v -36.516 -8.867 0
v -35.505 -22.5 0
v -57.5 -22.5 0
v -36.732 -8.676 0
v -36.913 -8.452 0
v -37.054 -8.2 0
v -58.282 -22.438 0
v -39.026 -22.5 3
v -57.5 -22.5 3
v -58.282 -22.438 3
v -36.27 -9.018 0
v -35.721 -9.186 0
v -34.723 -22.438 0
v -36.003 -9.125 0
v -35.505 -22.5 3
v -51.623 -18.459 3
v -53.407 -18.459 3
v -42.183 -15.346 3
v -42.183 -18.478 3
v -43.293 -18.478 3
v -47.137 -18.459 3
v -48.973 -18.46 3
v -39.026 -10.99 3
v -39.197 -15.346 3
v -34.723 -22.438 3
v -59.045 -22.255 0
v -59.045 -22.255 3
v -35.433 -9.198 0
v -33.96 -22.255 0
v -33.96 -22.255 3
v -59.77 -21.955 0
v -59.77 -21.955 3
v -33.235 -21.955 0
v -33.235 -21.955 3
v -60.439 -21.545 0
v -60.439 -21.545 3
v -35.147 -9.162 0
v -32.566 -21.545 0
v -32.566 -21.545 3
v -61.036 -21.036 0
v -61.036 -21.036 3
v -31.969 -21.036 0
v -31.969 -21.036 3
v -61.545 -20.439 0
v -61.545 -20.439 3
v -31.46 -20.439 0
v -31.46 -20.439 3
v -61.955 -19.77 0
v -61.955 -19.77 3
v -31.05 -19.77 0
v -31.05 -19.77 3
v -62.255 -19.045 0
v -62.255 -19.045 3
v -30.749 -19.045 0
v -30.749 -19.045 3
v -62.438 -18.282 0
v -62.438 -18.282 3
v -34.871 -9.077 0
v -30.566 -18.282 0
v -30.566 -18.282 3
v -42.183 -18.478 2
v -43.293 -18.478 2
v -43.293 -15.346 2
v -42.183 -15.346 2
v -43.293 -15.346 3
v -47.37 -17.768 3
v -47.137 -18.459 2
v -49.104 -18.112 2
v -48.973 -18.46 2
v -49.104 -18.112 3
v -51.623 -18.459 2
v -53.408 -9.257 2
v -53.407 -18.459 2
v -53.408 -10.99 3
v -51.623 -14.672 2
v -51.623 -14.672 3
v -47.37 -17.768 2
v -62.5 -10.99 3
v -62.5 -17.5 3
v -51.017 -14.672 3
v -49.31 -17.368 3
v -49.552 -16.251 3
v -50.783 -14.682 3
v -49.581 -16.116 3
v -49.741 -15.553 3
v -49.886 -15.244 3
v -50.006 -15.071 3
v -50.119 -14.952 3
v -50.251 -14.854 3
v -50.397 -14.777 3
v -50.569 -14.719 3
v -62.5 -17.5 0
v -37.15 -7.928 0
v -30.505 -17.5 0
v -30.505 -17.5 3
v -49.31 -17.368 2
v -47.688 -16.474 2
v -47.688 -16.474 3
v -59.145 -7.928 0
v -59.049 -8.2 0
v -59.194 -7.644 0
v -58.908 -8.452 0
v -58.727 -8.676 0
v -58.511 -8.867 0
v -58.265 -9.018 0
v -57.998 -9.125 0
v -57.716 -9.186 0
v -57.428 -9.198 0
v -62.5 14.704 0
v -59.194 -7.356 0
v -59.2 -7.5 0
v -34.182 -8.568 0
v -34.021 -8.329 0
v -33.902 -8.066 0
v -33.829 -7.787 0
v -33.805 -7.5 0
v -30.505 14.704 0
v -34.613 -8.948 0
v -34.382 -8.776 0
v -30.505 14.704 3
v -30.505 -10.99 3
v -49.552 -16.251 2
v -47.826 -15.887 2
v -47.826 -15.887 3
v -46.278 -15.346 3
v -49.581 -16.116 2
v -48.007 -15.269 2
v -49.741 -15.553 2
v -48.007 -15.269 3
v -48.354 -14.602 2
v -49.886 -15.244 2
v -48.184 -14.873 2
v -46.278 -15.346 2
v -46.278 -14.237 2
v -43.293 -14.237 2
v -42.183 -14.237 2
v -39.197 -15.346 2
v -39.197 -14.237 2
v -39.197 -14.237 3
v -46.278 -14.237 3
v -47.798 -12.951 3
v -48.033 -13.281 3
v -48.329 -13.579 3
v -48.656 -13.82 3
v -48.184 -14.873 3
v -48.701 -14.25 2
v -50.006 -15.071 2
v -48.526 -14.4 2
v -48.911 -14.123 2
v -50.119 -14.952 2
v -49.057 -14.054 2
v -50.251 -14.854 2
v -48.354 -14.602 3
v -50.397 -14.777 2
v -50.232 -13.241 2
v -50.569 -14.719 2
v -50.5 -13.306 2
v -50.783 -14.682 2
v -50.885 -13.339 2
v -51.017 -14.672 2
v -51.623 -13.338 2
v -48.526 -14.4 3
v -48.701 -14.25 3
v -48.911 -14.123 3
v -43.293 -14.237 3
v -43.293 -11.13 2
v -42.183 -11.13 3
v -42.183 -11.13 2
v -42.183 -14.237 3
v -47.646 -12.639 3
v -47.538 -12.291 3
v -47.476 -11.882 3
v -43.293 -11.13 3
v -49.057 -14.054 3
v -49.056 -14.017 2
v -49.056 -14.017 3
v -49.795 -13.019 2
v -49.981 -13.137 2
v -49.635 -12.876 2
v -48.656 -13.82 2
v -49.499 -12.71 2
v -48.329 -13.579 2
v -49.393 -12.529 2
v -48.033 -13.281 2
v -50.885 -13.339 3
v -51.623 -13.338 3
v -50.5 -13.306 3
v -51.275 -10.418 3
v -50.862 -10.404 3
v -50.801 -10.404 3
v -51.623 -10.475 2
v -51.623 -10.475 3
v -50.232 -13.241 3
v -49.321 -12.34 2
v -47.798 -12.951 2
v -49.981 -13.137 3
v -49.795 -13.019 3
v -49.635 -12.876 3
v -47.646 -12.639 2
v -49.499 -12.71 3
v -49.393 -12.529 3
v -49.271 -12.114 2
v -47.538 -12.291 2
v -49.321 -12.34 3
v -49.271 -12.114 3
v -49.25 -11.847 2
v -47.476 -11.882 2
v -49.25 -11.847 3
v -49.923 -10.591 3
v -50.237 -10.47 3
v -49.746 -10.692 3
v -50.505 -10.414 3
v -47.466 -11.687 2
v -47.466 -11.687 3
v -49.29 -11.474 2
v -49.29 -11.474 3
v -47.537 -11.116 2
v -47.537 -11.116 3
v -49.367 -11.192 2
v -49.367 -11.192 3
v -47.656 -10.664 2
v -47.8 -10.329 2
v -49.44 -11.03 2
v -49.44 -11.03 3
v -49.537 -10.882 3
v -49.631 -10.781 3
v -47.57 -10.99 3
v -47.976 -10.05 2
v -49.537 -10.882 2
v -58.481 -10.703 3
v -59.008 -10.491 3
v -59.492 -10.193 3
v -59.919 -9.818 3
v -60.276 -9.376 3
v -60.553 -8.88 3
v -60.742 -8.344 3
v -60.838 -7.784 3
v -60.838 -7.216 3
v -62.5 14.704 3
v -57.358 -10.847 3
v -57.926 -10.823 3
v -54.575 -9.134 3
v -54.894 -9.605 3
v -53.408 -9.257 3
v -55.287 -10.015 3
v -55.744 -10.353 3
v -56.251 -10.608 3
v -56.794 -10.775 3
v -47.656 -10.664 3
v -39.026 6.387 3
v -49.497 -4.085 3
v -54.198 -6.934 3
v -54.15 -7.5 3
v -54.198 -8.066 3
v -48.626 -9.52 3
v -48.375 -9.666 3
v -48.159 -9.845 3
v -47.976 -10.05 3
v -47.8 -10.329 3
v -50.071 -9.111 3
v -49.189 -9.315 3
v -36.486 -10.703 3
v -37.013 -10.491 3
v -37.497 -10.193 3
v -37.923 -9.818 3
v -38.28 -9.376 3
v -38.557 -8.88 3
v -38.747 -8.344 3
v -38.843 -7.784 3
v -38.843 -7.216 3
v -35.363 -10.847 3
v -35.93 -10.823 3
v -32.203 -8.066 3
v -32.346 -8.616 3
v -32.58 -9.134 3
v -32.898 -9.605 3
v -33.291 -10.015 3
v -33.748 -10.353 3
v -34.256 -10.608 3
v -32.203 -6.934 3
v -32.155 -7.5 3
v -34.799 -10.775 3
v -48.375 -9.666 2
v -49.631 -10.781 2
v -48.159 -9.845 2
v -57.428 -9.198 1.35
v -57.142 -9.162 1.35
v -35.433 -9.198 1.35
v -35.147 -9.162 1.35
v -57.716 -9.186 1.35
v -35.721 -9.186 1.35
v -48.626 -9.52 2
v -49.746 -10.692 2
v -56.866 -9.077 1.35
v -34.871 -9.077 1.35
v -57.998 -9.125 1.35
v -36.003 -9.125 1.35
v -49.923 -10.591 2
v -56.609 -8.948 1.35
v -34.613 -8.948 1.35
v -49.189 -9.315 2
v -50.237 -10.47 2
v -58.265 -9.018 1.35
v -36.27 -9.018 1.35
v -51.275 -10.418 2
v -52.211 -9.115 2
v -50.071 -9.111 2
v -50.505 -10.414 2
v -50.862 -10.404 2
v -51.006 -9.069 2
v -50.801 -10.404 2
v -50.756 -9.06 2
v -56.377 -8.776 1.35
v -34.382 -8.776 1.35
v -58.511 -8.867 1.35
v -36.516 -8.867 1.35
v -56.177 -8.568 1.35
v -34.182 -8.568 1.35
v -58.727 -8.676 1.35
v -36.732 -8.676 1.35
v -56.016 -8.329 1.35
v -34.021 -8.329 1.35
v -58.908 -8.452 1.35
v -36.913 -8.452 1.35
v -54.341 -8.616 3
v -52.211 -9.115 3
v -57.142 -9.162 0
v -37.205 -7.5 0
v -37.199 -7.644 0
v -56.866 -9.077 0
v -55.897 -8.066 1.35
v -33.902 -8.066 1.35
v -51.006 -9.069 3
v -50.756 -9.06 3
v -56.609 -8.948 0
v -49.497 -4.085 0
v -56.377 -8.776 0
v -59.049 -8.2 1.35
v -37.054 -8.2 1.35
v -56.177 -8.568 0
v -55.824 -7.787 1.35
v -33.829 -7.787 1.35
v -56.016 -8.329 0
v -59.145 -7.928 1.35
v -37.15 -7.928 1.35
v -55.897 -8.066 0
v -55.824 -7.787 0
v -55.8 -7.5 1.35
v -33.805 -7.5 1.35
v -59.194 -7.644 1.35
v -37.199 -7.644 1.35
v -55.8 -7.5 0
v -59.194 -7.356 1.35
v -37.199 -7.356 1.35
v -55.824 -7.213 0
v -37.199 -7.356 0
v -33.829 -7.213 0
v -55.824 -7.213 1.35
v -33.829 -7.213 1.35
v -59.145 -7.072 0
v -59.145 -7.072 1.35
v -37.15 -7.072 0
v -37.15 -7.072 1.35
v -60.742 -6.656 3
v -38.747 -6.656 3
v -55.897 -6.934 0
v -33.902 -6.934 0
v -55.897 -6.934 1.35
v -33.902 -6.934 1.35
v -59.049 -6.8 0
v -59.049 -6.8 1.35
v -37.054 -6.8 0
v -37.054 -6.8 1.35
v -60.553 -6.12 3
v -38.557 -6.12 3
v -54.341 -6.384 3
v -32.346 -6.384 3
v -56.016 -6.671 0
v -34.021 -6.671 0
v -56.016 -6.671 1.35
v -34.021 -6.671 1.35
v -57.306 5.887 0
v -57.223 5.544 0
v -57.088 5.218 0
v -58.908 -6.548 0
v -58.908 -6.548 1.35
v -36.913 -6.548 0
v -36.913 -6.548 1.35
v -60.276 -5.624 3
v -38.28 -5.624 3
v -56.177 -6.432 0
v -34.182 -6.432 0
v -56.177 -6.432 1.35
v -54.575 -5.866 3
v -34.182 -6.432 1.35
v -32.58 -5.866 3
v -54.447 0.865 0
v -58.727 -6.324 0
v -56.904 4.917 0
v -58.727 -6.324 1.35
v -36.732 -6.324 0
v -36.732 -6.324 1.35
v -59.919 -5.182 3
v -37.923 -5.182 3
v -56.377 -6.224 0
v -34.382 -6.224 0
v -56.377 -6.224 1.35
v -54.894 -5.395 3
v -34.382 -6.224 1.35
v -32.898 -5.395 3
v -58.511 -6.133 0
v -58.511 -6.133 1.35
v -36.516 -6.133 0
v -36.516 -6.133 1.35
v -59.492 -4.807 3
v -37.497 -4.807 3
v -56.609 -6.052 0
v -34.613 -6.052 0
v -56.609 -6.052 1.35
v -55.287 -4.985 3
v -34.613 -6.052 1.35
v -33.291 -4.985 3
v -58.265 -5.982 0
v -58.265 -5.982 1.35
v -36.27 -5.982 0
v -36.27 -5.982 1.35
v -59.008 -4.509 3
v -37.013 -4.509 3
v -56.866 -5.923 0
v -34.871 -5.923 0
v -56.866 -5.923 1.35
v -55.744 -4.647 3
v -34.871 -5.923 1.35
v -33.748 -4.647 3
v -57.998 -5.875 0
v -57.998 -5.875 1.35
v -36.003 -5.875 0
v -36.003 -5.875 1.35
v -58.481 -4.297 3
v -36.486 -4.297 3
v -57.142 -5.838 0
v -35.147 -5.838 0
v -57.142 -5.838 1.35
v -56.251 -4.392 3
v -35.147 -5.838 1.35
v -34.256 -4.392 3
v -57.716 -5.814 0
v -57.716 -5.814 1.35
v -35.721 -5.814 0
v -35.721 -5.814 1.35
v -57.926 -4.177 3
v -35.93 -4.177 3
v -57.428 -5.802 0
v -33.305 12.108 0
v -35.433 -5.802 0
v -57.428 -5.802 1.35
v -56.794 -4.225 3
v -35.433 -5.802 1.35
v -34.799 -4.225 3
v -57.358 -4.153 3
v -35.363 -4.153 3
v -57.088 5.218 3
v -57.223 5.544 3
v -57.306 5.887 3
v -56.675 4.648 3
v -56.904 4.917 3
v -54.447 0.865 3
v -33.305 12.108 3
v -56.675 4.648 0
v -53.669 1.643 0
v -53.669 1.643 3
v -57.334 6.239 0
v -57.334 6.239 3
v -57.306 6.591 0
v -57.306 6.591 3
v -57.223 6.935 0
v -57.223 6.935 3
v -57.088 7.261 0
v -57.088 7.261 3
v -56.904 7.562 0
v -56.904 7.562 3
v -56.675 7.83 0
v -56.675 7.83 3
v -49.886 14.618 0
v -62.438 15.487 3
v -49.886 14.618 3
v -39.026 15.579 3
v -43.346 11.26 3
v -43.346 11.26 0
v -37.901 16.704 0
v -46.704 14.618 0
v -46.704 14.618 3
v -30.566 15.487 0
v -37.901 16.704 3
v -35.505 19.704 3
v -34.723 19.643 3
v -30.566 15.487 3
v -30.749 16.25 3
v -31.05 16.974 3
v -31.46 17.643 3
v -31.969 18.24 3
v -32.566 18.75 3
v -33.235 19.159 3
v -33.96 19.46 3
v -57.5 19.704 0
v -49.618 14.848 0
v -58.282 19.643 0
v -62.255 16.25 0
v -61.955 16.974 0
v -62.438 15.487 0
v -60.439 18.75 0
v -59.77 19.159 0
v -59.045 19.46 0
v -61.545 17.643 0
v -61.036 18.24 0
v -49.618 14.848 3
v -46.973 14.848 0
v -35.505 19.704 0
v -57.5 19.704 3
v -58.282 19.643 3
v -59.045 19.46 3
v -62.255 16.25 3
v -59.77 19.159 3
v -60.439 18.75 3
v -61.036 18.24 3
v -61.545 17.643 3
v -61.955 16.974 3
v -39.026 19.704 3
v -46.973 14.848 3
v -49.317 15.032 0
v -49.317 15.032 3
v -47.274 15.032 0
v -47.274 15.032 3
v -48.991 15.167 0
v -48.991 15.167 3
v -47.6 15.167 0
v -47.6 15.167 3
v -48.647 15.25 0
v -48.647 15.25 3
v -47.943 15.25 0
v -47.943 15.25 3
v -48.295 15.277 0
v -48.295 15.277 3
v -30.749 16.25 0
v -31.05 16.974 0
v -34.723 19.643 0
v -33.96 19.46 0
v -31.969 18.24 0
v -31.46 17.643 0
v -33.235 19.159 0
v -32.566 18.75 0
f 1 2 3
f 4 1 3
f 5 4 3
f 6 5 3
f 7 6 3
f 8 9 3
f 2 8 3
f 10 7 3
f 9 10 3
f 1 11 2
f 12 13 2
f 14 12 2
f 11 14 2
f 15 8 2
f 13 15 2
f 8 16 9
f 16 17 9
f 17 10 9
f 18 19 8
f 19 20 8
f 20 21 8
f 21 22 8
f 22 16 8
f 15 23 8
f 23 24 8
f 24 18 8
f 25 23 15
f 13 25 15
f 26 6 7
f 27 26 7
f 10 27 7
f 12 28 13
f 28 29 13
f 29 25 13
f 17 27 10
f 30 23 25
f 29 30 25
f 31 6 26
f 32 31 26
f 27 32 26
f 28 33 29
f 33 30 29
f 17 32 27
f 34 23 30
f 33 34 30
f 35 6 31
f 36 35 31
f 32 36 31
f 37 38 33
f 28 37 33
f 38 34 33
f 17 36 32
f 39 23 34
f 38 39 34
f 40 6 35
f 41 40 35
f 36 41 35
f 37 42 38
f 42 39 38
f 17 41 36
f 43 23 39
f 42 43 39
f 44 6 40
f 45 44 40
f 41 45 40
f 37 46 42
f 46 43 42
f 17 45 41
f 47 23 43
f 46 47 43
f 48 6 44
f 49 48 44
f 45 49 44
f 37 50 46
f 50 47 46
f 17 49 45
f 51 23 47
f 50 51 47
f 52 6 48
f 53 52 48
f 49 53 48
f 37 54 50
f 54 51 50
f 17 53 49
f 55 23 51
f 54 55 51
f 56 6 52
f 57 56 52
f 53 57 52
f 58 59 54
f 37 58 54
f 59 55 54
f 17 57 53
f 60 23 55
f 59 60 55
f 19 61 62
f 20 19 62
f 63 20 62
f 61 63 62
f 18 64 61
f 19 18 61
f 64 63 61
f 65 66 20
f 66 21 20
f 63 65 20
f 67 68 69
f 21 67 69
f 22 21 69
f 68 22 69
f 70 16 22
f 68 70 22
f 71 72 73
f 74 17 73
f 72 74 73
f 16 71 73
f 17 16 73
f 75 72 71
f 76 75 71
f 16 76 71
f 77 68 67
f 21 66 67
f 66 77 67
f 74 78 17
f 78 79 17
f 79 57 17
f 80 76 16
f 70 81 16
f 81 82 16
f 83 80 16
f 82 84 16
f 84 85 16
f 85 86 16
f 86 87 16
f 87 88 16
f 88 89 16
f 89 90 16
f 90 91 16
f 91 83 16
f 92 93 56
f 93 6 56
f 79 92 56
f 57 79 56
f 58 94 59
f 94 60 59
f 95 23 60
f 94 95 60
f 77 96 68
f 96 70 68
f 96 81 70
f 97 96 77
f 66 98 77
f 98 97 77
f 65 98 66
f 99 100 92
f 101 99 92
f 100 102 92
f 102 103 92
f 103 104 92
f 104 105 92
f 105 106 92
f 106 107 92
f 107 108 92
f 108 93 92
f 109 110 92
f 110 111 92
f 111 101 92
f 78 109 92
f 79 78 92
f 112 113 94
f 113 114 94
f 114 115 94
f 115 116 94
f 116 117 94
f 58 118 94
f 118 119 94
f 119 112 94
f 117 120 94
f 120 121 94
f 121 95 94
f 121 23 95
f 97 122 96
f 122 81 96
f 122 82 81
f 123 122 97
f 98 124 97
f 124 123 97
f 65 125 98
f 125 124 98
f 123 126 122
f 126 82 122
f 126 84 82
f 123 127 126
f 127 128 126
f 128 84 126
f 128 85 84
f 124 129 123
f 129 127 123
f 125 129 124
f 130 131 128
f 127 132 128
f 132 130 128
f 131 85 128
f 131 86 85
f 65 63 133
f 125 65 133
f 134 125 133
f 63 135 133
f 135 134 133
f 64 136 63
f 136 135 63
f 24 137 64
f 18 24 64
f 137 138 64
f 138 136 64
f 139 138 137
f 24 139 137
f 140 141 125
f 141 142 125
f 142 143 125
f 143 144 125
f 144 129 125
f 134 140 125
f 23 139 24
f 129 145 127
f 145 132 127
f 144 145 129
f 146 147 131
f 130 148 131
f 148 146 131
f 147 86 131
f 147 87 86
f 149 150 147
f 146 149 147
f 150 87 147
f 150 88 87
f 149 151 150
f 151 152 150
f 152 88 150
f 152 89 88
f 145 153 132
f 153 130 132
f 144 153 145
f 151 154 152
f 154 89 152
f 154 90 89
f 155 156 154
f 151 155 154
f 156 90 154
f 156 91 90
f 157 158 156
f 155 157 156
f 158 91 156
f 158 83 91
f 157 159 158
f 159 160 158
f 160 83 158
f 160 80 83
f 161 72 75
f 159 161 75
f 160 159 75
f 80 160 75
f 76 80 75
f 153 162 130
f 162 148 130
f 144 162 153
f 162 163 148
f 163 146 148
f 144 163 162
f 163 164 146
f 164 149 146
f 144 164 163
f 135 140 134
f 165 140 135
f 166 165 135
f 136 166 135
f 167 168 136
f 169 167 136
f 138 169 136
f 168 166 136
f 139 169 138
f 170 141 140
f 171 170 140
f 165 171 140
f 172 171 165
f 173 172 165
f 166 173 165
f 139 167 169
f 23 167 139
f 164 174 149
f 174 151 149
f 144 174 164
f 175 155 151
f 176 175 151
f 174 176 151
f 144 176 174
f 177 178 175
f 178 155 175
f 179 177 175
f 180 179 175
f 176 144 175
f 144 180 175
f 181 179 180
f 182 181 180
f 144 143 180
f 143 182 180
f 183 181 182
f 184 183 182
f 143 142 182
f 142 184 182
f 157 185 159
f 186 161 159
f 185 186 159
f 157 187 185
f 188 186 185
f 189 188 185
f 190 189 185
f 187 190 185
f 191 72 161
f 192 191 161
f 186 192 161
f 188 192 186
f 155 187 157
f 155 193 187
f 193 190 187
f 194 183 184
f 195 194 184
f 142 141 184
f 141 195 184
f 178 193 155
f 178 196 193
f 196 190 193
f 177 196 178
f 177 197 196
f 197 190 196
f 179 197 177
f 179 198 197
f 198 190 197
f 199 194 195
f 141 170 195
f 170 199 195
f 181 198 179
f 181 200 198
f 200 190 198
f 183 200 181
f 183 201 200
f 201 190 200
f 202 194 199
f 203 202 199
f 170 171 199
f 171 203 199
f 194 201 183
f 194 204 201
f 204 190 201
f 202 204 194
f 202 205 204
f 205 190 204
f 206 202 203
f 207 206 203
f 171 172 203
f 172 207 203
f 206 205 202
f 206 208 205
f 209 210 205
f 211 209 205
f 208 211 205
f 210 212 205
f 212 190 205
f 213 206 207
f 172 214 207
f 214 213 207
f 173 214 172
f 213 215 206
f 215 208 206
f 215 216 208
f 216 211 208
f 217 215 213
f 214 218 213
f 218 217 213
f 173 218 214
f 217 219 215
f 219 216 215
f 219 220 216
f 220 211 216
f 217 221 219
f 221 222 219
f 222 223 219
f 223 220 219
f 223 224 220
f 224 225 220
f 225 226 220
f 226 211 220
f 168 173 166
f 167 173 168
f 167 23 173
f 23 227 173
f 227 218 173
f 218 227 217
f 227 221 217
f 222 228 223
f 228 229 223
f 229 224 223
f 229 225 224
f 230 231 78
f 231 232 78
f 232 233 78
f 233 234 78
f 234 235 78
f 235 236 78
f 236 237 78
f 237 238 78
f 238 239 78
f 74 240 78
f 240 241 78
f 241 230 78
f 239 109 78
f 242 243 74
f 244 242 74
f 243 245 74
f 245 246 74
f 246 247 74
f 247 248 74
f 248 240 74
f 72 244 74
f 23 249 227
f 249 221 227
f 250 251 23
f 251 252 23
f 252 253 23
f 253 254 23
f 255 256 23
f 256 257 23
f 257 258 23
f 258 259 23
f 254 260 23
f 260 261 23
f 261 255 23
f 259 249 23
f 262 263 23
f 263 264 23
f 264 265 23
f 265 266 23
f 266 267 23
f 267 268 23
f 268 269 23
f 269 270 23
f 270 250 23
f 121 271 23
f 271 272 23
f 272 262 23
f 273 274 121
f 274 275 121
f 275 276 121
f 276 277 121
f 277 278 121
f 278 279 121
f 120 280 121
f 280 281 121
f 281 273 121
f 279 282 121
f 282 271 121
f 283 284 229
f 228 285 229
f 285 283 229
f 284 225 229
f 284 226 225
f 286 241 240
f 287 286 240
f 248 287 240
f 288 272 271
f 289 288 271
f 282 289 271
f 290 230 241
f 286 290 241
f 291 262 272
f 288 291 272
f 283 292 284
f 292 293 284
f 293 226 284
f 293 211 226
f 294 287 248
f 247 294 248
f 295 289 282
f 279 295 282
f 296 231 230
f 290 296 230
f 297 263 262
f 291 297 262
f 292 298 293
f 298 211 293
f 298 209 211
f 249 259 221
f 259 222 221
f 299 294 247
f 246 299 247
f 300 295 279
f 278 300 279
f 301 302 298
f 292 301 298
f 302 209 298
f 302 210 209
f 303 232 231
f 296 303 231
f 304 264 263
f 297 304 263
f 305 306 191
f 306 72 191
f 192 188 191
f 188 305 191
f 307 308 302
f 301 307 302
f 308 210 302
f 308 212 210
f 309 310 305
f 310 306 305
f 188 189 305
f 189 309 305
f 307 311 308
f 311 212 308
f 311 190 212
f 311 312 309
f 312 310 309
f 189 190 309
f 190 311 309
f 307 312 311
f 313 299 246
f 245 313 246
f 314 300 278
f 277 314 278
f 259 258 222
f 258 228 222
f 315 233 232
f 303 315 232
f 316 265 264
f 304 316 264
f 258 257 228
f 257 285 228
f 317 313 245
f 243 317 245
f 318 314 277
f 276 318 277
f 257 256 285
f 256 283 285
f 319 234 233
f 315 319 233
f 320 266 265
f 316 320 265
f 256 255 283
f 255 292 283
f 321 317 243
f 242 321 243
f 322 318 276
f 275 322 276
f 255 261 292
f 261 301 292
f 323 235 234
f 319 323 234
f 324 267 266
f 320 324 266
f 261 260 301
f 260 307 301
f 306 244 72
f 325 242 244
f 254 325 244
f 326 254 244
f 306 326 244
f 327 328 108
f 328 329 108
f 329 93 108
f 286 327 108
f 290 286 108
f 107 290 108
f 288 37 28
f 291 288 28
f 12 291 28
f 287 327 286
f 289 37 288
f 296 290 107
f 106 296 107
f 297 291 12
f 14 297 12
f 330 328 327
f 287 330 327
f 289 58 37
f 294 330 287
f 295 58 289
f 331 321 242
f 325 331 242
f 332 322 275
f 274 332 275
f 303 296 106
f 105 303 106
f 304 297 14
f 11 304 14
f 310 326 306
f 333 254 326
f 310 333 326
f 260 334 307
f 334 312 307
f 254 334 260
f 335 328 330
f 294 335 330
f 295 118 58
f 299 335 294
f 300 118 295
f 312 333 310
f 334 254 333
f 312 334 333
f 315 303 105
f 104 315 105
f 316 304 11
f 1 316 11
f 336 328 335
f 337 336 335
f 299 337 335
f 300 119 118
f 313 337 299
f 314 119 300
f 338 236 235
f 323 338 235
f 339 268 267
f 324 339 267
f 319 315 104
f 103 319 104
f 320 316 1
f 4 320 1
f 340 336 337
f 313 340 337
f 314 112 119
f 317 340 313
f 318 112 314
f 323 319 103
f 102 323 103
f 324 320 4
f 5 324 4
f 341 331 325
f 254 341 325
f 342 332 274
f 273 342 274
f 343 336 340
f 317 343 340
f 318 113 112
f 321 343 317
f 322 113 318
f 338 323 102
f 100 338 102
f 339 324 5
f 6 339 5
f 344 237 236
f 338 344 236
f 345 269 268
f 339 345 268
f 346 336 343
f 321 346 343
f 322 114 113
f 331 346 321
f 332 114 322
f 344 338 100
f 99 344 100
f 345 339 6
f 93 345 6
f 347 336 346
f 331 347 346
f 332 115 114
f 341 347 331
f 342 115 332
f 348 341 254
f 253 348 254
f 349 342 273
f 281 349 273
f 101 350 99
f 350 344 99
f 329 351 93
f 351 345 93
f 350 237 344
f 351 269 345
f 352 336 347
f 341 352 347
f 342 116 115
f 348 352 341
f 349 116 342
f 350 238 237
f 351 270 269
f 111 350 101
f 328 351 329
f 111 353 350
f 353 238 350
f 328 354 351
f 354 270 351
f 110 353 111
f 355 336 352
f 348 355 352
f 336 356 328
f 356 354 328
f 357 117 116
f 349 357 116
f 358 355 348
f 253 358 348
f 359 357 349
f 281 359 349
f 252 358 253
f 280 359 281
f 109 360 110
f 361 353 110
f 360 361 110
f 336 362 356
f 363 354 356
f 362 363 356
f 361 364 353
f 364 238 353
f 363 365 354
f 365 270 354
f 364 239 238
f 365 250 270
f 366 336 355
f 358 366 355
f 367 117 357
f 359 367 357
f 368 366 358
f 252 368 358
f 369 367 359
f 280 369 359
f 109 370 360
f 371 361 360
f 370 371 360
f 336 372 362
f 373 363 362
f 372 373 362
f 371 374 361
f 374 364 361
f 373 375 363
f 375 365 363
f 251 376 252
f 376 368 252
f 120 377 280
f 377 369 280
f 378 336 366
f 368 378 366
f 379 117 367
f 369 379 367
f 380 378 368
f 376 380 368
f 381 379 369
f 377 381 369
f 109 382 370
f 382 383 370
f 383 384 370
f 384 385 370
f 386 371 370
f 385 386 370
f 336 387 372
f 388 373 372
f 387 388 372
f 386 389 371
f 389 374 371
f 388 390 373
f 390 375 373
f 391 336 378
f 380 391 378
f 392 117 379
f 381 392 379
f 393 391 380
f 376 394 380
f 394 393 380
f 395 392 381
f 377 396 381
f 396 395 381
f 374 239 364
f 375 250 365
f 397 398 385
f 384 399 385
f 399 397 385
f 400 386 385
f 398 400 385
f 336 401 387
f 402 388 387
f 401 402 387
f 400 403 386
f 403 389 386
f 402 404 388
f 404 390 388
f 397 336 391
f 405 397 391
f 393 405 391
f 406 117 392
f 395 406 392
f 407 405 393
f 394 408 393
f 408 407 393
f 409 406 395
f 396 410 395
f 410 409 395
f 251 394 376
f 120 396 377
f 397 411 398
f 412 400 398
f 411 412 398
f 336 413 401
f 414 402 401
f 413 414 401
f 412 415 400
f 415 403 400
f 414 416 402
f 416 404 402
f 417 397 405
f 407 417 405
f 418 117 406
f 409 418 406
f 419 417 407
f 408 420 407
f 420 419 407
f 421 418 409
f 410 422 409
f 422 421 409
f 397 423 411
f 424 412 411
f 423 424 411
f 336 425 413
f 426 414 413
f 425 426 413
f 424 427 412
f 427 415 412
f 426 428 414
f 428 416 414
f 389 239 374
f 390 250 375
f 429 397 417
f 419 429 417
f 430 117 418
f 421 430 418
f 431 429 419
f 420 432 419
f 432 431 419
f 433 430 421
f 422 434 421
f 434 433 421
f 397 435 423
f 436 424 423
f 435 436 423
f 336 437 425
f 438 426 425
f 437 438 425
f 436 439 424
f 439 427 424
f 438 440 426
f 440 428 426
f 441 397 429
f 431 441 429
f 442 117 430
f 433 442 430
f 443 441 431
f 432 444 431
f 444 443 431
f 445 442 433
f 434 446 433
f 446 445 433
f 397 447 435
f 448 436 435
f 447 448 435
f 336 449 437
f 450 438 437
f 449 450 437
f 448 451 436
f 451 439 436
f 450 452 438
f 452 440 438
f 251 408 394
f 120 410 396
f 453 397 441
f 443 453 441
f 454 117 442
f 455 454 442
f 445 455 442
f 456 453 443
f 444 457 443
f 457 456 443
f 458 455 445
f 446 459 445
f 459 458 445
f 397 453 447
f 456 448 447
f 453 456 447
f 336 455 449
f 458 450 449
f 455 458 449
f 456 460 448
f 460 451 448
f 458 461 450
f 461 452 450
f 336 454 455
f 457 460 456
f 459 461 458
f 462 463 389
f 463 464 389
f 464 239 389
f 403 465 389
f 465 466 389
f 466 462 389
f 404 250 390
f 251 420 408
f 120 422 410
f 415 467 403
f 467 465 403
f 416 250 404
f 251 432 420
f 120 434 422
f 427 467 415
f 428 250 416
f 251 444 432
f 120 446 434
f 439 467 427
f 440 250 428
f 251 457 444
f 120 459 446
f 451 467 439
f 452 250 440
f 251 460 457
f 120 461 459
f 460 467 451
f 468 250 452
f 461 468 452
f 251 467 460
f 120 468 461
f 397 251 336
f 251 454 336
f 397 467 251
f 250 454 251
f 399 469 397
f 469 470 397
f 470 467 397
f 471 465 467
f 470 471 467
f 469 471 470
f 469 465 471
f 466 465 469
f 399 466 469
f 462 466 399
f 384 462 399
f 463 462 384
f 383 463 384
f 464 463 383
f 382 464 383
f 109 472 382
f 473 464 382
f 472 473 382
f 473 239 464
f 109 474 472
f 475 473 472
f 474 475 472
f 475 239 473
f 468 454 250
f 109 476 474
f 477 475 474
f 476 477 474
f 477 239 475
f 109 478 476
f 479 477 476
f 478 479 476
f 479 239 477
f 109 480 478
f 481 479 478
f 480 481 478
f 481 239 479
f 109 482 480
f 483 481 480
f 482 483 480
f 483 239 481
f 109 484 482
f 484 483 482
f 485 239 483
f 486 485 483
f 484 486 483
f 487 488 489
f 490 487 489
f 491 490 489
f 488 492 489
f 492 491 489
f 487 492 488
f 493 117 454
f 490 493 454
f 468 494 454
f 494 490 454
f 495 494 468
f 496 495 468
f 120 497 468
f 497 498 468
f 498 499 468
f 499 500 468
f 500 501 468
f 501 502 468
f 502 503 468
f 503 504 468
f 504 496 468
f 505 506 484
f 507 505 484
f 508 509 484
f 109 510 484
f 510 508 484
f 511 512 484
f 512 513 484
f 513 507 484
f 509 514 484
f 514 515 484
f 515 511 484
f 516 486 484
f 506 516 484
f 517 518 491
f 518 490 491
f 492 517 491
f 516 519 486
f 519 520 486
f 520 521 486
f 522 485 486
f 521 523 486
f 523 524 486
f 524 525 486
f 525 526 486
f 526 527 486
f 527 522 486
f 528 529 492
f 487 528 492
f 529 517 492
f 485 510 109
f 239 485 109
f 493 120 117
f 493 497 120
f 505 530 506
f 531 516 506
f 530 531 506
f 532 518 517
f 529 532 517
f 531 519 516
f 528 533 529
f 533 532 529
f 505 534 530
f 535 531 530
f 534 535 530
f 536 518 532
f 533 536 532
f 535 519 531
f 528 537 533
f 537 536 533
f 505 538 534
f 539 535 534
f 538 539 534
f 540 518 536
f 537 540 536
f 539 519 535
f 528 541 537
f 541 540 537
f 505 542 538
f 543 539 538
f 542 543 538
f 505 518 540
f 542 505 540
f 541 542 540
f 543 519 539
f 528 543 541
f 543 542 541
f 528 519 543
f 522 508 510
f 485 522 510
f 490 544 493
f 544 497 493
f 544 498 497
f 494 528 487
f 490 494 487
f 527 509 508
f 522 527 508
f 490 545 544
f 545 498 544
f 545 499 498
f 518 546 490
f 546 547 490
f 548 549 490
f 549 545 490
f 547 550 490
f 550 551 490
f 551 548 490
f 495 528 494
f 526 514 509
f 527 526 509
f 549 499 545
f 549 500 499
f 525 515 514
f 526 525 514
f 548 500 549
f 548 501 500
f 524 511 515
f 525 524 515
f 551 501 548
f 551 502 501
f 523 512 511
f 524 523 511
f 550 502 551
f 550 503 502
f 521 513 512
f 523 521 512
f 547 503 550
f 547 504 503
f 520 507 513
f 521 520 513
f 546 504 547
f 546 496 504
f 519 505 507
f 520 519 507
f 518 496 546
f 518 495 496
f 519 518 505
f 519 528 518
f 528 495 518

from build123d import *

# Parameters (mm, degrees)
SKETCH2_W                                           = 31.995270606
SKETCH2_H                                           = 42.204432033
BOSS_EXTRUDE2_DEPTH                                 = 3
FILLET1_R                                           = 5
CUT_EXTRUDE1_DEPTH                                  = 1
CSK_FOR_M3_COUNTERSUNK_FLAT_HEAD_SCREW1_D           = 3.4
CSK_FOR_M3_COUNTERSUNK_FLAT_HEAD_SCREW1_DEPTH       = 20
CSK_FOR_M3_COUNTERSUNK_FLAT_HEAD_SCREW1_CSINK_D     = 6.7
CSK_FOR_M3_COUNTERSUNK_FLAT_HEAD_SCREW1_CSINK_ANGLE = 90
CSK_FOR_M3_COUNTERSUNK_FLAT_HEAD_SCREW1_TIP         = 1.021463052


with BuildPart() as part:
    # Sketch2 → Boss-Extrude2 (new body)
    with BuildSketch(Plane.XY):
        with Locations((-46.502364697, -1.397783984)):
            Rectangle(SKETCH2_W, SKETCH2_H)
        with BuildLine():
            Line((-43.345645687, 11.259709818), (-37.900923472, 16.704432033))
            Line((-37.900923472, 16.704432033), (-33.304729394, 12.108237955))
            Line((-33.304729394, 12.108237955), (-40.481863223, 4.931104126))
            Line((-40.481863223, 4.931104126), (-47.694352391, -2.281385042))
            Line((-47.694352391, -2.281385042), (-49.497474683, -4.084507334))
            Line((-49.497474683, -4.084507334), (-54.270445456, 0.688463439))
            Line((-54.270445456, 0.688463439), (-54.447222151, 0.865240134))
            Line((-54.447222151, 0.865240134), (-53.669404692, 1.643057594))
            Line((-53.669404692, 1.643057594), (-56.674608512, 4.648261414))
            ThreePointArc((-56.674608512, 4.648261414), (-57.333618254, 6.239251671), (-56.674608512, 7.830241929))
            Line((-56.674608512, 7.830241929), (-49.886383413, 14.618467028))
            ThreePointArc((-49.886383413, 14.618467028), (-48.295393155, 15.277476771), (-46.704402897, 14.618467028))
            Line((-46.704402897, 14.618467028), (-43.345645687, 11.259709818))
        make_face(mode=Mode.SUBTRACT)
    extrude(amount=BOSS_EXTRUDE2_DEPTH)

    # Fillet1
    fillet1_edges = [part.edges().sort_by_distance(p)[0] for p in [
        (-62.5, 19.704432033, 1.5),
        (-30.504729394, 19.704432033, 1.5),
        (-30.504729394, -22.5, 1.5),
        (-62.5, -22.5, 1.5),
    ]]
    fillet(fillet1_edges, radius=FILLET1_R)

    # Sketch3 → Cut-Extrude1 (cut)
    with BuildSketch(Plane.XY.offset(3)):
        with BuildLine():
            Line((-53.406595938, -18.458875061), (-51.622591884, -18.458875061))
            Line((-51.622591884, -18.458875061), (-51.622591884, -14.672122679))
            Line((-51.622591884, -14.672122679), (-51.017108914, -14.672122679))
            add(Edge.make_bspline(
                [(-51.017108914, -14.672122679), (-50.967221063, -14.6725211), (-50.869089583, -14.673304811), (-50.726307211, -14.687536776), (-50.59134918, -14.711269605), (-50.466393214, -14.74890661), (-50.349448029, -14.795186794), (-50.243372763, -14.856795477), (-50.144072949, -14.926037335), (-50.054957683, -15.010644116), (-49.973820519, -15.109304476), (-49.895499782, -15.22163632), (-49.82653007, -15.353586411), (-49.759217057, -15.500135947), (-49.701088017, -15.664809001), (-49.643553431, -15.843956856), (-49.595679106, -16.041536599), (-49.567178312, -16.179191645), (-49.552376571, -16.25068209)],
                knots=[0, 0, 0, 0, 0.000149599, 0.000294267, 0.000429961, 0.000559969, 0.000685182, 0.000806276, 0.000927115, 0.001047609, 0.001173509, 0.001309883, 0.001457588, 0.001619475, 0.001793345, 0.001981055, 0.002183769, 0.002402801, 0.002402801, 0.002402801, 0.002402801], degree=3))
            add(Edge.make_bspline(
                [(-49.552376571, -16.25068209), (-49.525198055, -16.387123246), (-49.473103018, -16.648649934), (-49.392970197, -17.023584407), (-49.311565779, -17.362673147), (-49.236540071, -17.666100231), (-49.159754201, -17.927379781), (-49.09515802, -18.146751884), (-49.035019782, -18.32008565), (-48.991587507, -18.417682148), (-48.972926992, -18.45961412)],
                knots=[0, 0, 0, 0, 0.000417367, 0.000799998, 0.001150089, 0.001463532, 0.001737527, 0.001966934, 0.002149658, 0.002287303, 0.002287303, 0.002287303, 0.002287303], degree=3))
            Line((-48.972926992, -18.45961412), (-47.136904169, -18.458875061))
            add(Edge.make_bspline(
                [(-47.136904169, -18.458875061), (-47.161564895, -18.402686862), (-47.218007052, -18.274086301), (-47.289802608, -18.048232695), (-47.371028766, -17.770288113), (-47.454128887, -17.444111213), (-47.54108784, -17.08294144), (-47.635197109, -16.699954349), (-47.729326366, -16.299301278), (-47.793532678, -16.026508782), (-47.826319189, -15.887209172)],
                knots=[0, 0, 0, 0, 0.000183977, 0.000421076, 0.000710029, 0.001052867, 0.00143062, 0.001824558, 0.002235981, 0.002665299, 0.002665299, 0.002665299, 0.002665299], degree=3))
            add(Edge.make_bspline(
                [(-47.826319189, -15.887209172), (-47.853811517, -15.773168942), (-47.906950904, -15.5527428), (-48.012466172, -15.242137194), (-48.133574292, -14.961961493), (-48.271280255, -14.712628496), (-48.430628441, -14.494327391), (-48.613783885, -14.309294243), (-48.824443435, -14.160659908), (-48.979271119, -14.089741414), (-49.057210567, -14.054041414)],
                knots=[0, 0, 0, 0, 0.000351778, 0.000679945, 0.00098268, 0.001266475, 0.001532679, 0.001790935, 0.002044255, 0.002301038, 0.002301038, 0.002301038, 0.002301038], degree=3))
            Line((-49.057210567, -14.054041414), (-49.055826761, -14.017001018))
            add(Edge.make_bspline(
                [(-49.055826761, -14.017001018), (-48.947444474, -13.970005767), (-48.731176328, -13.876230519), (-48.437027307, -13.676157256), (-48.16698609, -13.438863882), (-47.96738166, -13.208200023), (-47.827527505, -13.003332314), (-47.734510158, -12.840203194), (-47.654705939, -12.668874791), (-47.590237223, -12.488727388), (-47.536975559, -12.300576236), (-47.49880838, -12.103222096), (-47.473716885, -11.89781805), (-47.468833592, -11.757970901), (-47.466358087, -11.68707768)],
                knots=[0, 0, 0, 0, 0.000353722, 0.000705825, 0.001061629, 0.00143016, 0.001617179, 0.001805135, 0.001992894, 0.002183416, 0.002378543, 0.002578963, 0.00278587, 0.002998596, 0.002998596, 0.002998596, 0.002998596], degree=3))
            add(Edge.make_bspline(
                [(-47.466358087, -11.68707768), (-47.471335477, -11.614412673), (-47.481116943, -11.471612893), (-47.510316581, -11.263842973), (-47.54492077, -11.065622921), (-47.588249594, -10.87842638), (-47.641427562, -10.701449), (-47.702511342, -10.534699828), (-47.772245942, -10.378252437), (-47.852158355, -10.232984263), (-47.939986965, -10.098344998), (-48.033967332, -9.971834439), (-48.141219561, -9.860313263), (-48.25318803, -9.754798011), (-48.376606652, -9.662838486), (-48.507424148, -9.578828028), (-48.647802909, -9.507518301), (-48.843870315, -9.427166253), (-49.092633379, -9.344888092), (-49.385532702, -9.252977107), (-49.674059157, -9.184061361), (-49.953635545, -9.126227189), (-50.227113002, -9.088865813), (-50.492941892, -9.061958609), (-50.752364485, -9.057551627), (-50.922597141, -9.065240143), (-51.006268241, -9.069019128)],
                knots=[0, 0, 0, 0, 0.000218439, 0.000429273, 0.000629045, 0.000821988, 0.00100531, 0.001183082, 0.001354416, 0.001518656, 0.001679866, 0.001836496, 0.001990536, 0.002143381, 0.002297551, 0.002451481, 0.002609328, 0.002769115, 0.003086745, 0.003395031, 0.003689736, 0.003976245, 0.004251139, 0.004517418, 0.004777346, 0.005028594, 0.005028594, 0.005028594, 0.005028594], degree=3))
            add(Edge.make_bspline(
                [(-51.006268241, -9.069019128), (-51.229920663, -9.07164849), (-51.667065111, -9.076787763), (-52.203799431, -9.112050461), (-52.610847653, -9.150113546), (-52.893038741, -9.181499683), (-53.157150271, -9.216172913), (-53.326467573, -9.243625216), (-53.408350131, -9.256901264)],
                knots=[0, 0, 0, 0, 0.000670904, 0.001311329, 0.001612901, 0.001897363, 0.00216308, 0.002411924, 0.002411924, 0.002411924, 0.002411924], degree=3))
            Line((-53.408350131, -9.256901264), (-53.406595938, -18.458875061))
        make_face()
        with BuildLine():
            add(Edge.make_bspline(
                [(-51.622591884, -10.475098321), (-51.578289384, -10.463741178), (-51.474495266, -10.437133094), (-51.291682029, -10.418528414), (-51.062136724, -10.403821129), (-50.893349772, -10.40361956), (-50.800827027, -10.403509067)],
                knots=[0, 0, 0, 0, 0.000137048, 0.000321084, 0.000549784, 0.00082724, 0.00082724, 0.00082724, 0.00082724], degree=3))
            add(Edge.make_bspline(
                [(-50.800827027, -10.403509067), (-50.713411846, -10.402981113), (-50.538343762, -10.40192377), (-50.277794239, -10.452443011), (-50.02227135, -10.54015698), (-49.815350935, -10.642172207), (-49.660308674, -10.749873331), (-49.556880046, -10.851803167), (-49.46929571, -10.972739958), (-49.393832963, -11.111515899), (-49.338533994, -11.270485036), (-49.291412353, -11.445599811), (-49.26254282, -11.640002112), (-49.25453627, -11.775957367), (-49.250360427, -11.846865291)],
                knots=[0, 0, 0, 0, 0.000261725, 0.000524161, 0.000791249, 0.001070808, 0.00121308, 0.001355871, 0.001504077, 0.001659631, 0.001827951, 0.00200768, 0.002203123, 0.002416175, 0.002416175, 0.002416175, 0.002416175], degree=3))
            add(Edge.make_bspline(
                [(-49.250360427, -11.846865291), (-49.252345828, -11.901954186), (-49.256225356, -12.009599393), (-49.277748827, -12.166460507), (-49.310814955, -12.315396112), (-49.357636445, -12.455901219), (-49.420346886, -12.587424294), (-49.495248035, -12.710240218), (-49.584778187, -12.823418468), (-49.684256839, -12.929228854), (-49.796941896, -13.023790308), (-49.920064233, -13.107175482), (-50.055738699, -13.175598565), (-50.200855706, -13.233265514), (-50.357133256, -13.279426838), (-50.523528709, -13.311908188), (-50.700774743, -13.333661231), (-50.822416839, -13.337439587), (-50.885110602, -13.339386933)],
                knots=[0, 0, 0, 0, 0.000165289, 0.000322979, 0.000474201, 0.000622458, 0.000766196, 0.000910448, 0.001053055, 0.001198372, 0.001345408, 0.001493457, 0.001643451, 0.001800288, 0.001961411, 0.002131526, 0.002308376, 0.002496463, 0.002496463, 0.002496463, 0.002496463], degree=3))
            Line((-50.885110602, -13.339386933), (-51.622591884, -13.33763274))
            Line((-51.622591884, -13.33763274), (-51.622591884, -10.475098321))
        make_face(mode=Mode.SUBTRACT)
        Polygon((-46.278275536, -14.236655826), (-46.278275536, -15.34639128), (-43.292566927, -15.34639128), (-43.292566927, -18.477744211), (-42.182831473, -18.477744211), (-42.182831473, -15.34639128), (-39.197122864, -15.34639128), (-39.197122864, -14.236655826), (-42.182831473, -14.236655826), (-42.182831473, -11.129576949), (-43.292566927, -11.129576949), (-43.292566927, -14.236655826), align=None)
    extrude(amount=-CUT_EXTRUDE1_DEPTH, mode=Mode.SUBTRACT)

    # CSK for M3 Countersunk Flat Head Screw1
    with Locations(Plane(origin=(-57.5, -7.5, 3), x_dir=(1, 0, 0), z_dir=(0, 0, 1))):
        with Locations((0, 0), (21.995270606, 0)):
            CounterSinkHole(CSK_FOR_M3_COUNTERSUNK_FLAT_HEAD_SCREW1_D / 2, CSK_FOR_M3_COUNTERSUNK_FLAT_HEAD_SCREW1_CSINK_D / 2, depth=CSK_FOR_M3_COUNTERSUNK_FLAT_HEAD_SCREW1_DEPTH, counter_sink_angle=CSK_FOR_M3_COUNTERSUNK_FLAT_HEAD_SCREW1_CSINK_ANGLE)
            with Locations((0, 0, -(CSK_FOR_M3_COUNTERSUNK_FLAT_HEAD_SCREW1_DEPTH + CSK_FOR_M3_COUNTERSUNK_FLAT_HEAD_SCREW1_TIP / 2))):  # 118° drill point
                Cone(0, CSK_FOR_M3_COUNTERSUNK_FLAT_HEAD_SCREW1_D / 2, CSK_FOR_M3_COUNTERSUNK_FLAT_HEAD_SCREW1_TIP, mode=Mode.SUBTRACT)


solid = part.part
